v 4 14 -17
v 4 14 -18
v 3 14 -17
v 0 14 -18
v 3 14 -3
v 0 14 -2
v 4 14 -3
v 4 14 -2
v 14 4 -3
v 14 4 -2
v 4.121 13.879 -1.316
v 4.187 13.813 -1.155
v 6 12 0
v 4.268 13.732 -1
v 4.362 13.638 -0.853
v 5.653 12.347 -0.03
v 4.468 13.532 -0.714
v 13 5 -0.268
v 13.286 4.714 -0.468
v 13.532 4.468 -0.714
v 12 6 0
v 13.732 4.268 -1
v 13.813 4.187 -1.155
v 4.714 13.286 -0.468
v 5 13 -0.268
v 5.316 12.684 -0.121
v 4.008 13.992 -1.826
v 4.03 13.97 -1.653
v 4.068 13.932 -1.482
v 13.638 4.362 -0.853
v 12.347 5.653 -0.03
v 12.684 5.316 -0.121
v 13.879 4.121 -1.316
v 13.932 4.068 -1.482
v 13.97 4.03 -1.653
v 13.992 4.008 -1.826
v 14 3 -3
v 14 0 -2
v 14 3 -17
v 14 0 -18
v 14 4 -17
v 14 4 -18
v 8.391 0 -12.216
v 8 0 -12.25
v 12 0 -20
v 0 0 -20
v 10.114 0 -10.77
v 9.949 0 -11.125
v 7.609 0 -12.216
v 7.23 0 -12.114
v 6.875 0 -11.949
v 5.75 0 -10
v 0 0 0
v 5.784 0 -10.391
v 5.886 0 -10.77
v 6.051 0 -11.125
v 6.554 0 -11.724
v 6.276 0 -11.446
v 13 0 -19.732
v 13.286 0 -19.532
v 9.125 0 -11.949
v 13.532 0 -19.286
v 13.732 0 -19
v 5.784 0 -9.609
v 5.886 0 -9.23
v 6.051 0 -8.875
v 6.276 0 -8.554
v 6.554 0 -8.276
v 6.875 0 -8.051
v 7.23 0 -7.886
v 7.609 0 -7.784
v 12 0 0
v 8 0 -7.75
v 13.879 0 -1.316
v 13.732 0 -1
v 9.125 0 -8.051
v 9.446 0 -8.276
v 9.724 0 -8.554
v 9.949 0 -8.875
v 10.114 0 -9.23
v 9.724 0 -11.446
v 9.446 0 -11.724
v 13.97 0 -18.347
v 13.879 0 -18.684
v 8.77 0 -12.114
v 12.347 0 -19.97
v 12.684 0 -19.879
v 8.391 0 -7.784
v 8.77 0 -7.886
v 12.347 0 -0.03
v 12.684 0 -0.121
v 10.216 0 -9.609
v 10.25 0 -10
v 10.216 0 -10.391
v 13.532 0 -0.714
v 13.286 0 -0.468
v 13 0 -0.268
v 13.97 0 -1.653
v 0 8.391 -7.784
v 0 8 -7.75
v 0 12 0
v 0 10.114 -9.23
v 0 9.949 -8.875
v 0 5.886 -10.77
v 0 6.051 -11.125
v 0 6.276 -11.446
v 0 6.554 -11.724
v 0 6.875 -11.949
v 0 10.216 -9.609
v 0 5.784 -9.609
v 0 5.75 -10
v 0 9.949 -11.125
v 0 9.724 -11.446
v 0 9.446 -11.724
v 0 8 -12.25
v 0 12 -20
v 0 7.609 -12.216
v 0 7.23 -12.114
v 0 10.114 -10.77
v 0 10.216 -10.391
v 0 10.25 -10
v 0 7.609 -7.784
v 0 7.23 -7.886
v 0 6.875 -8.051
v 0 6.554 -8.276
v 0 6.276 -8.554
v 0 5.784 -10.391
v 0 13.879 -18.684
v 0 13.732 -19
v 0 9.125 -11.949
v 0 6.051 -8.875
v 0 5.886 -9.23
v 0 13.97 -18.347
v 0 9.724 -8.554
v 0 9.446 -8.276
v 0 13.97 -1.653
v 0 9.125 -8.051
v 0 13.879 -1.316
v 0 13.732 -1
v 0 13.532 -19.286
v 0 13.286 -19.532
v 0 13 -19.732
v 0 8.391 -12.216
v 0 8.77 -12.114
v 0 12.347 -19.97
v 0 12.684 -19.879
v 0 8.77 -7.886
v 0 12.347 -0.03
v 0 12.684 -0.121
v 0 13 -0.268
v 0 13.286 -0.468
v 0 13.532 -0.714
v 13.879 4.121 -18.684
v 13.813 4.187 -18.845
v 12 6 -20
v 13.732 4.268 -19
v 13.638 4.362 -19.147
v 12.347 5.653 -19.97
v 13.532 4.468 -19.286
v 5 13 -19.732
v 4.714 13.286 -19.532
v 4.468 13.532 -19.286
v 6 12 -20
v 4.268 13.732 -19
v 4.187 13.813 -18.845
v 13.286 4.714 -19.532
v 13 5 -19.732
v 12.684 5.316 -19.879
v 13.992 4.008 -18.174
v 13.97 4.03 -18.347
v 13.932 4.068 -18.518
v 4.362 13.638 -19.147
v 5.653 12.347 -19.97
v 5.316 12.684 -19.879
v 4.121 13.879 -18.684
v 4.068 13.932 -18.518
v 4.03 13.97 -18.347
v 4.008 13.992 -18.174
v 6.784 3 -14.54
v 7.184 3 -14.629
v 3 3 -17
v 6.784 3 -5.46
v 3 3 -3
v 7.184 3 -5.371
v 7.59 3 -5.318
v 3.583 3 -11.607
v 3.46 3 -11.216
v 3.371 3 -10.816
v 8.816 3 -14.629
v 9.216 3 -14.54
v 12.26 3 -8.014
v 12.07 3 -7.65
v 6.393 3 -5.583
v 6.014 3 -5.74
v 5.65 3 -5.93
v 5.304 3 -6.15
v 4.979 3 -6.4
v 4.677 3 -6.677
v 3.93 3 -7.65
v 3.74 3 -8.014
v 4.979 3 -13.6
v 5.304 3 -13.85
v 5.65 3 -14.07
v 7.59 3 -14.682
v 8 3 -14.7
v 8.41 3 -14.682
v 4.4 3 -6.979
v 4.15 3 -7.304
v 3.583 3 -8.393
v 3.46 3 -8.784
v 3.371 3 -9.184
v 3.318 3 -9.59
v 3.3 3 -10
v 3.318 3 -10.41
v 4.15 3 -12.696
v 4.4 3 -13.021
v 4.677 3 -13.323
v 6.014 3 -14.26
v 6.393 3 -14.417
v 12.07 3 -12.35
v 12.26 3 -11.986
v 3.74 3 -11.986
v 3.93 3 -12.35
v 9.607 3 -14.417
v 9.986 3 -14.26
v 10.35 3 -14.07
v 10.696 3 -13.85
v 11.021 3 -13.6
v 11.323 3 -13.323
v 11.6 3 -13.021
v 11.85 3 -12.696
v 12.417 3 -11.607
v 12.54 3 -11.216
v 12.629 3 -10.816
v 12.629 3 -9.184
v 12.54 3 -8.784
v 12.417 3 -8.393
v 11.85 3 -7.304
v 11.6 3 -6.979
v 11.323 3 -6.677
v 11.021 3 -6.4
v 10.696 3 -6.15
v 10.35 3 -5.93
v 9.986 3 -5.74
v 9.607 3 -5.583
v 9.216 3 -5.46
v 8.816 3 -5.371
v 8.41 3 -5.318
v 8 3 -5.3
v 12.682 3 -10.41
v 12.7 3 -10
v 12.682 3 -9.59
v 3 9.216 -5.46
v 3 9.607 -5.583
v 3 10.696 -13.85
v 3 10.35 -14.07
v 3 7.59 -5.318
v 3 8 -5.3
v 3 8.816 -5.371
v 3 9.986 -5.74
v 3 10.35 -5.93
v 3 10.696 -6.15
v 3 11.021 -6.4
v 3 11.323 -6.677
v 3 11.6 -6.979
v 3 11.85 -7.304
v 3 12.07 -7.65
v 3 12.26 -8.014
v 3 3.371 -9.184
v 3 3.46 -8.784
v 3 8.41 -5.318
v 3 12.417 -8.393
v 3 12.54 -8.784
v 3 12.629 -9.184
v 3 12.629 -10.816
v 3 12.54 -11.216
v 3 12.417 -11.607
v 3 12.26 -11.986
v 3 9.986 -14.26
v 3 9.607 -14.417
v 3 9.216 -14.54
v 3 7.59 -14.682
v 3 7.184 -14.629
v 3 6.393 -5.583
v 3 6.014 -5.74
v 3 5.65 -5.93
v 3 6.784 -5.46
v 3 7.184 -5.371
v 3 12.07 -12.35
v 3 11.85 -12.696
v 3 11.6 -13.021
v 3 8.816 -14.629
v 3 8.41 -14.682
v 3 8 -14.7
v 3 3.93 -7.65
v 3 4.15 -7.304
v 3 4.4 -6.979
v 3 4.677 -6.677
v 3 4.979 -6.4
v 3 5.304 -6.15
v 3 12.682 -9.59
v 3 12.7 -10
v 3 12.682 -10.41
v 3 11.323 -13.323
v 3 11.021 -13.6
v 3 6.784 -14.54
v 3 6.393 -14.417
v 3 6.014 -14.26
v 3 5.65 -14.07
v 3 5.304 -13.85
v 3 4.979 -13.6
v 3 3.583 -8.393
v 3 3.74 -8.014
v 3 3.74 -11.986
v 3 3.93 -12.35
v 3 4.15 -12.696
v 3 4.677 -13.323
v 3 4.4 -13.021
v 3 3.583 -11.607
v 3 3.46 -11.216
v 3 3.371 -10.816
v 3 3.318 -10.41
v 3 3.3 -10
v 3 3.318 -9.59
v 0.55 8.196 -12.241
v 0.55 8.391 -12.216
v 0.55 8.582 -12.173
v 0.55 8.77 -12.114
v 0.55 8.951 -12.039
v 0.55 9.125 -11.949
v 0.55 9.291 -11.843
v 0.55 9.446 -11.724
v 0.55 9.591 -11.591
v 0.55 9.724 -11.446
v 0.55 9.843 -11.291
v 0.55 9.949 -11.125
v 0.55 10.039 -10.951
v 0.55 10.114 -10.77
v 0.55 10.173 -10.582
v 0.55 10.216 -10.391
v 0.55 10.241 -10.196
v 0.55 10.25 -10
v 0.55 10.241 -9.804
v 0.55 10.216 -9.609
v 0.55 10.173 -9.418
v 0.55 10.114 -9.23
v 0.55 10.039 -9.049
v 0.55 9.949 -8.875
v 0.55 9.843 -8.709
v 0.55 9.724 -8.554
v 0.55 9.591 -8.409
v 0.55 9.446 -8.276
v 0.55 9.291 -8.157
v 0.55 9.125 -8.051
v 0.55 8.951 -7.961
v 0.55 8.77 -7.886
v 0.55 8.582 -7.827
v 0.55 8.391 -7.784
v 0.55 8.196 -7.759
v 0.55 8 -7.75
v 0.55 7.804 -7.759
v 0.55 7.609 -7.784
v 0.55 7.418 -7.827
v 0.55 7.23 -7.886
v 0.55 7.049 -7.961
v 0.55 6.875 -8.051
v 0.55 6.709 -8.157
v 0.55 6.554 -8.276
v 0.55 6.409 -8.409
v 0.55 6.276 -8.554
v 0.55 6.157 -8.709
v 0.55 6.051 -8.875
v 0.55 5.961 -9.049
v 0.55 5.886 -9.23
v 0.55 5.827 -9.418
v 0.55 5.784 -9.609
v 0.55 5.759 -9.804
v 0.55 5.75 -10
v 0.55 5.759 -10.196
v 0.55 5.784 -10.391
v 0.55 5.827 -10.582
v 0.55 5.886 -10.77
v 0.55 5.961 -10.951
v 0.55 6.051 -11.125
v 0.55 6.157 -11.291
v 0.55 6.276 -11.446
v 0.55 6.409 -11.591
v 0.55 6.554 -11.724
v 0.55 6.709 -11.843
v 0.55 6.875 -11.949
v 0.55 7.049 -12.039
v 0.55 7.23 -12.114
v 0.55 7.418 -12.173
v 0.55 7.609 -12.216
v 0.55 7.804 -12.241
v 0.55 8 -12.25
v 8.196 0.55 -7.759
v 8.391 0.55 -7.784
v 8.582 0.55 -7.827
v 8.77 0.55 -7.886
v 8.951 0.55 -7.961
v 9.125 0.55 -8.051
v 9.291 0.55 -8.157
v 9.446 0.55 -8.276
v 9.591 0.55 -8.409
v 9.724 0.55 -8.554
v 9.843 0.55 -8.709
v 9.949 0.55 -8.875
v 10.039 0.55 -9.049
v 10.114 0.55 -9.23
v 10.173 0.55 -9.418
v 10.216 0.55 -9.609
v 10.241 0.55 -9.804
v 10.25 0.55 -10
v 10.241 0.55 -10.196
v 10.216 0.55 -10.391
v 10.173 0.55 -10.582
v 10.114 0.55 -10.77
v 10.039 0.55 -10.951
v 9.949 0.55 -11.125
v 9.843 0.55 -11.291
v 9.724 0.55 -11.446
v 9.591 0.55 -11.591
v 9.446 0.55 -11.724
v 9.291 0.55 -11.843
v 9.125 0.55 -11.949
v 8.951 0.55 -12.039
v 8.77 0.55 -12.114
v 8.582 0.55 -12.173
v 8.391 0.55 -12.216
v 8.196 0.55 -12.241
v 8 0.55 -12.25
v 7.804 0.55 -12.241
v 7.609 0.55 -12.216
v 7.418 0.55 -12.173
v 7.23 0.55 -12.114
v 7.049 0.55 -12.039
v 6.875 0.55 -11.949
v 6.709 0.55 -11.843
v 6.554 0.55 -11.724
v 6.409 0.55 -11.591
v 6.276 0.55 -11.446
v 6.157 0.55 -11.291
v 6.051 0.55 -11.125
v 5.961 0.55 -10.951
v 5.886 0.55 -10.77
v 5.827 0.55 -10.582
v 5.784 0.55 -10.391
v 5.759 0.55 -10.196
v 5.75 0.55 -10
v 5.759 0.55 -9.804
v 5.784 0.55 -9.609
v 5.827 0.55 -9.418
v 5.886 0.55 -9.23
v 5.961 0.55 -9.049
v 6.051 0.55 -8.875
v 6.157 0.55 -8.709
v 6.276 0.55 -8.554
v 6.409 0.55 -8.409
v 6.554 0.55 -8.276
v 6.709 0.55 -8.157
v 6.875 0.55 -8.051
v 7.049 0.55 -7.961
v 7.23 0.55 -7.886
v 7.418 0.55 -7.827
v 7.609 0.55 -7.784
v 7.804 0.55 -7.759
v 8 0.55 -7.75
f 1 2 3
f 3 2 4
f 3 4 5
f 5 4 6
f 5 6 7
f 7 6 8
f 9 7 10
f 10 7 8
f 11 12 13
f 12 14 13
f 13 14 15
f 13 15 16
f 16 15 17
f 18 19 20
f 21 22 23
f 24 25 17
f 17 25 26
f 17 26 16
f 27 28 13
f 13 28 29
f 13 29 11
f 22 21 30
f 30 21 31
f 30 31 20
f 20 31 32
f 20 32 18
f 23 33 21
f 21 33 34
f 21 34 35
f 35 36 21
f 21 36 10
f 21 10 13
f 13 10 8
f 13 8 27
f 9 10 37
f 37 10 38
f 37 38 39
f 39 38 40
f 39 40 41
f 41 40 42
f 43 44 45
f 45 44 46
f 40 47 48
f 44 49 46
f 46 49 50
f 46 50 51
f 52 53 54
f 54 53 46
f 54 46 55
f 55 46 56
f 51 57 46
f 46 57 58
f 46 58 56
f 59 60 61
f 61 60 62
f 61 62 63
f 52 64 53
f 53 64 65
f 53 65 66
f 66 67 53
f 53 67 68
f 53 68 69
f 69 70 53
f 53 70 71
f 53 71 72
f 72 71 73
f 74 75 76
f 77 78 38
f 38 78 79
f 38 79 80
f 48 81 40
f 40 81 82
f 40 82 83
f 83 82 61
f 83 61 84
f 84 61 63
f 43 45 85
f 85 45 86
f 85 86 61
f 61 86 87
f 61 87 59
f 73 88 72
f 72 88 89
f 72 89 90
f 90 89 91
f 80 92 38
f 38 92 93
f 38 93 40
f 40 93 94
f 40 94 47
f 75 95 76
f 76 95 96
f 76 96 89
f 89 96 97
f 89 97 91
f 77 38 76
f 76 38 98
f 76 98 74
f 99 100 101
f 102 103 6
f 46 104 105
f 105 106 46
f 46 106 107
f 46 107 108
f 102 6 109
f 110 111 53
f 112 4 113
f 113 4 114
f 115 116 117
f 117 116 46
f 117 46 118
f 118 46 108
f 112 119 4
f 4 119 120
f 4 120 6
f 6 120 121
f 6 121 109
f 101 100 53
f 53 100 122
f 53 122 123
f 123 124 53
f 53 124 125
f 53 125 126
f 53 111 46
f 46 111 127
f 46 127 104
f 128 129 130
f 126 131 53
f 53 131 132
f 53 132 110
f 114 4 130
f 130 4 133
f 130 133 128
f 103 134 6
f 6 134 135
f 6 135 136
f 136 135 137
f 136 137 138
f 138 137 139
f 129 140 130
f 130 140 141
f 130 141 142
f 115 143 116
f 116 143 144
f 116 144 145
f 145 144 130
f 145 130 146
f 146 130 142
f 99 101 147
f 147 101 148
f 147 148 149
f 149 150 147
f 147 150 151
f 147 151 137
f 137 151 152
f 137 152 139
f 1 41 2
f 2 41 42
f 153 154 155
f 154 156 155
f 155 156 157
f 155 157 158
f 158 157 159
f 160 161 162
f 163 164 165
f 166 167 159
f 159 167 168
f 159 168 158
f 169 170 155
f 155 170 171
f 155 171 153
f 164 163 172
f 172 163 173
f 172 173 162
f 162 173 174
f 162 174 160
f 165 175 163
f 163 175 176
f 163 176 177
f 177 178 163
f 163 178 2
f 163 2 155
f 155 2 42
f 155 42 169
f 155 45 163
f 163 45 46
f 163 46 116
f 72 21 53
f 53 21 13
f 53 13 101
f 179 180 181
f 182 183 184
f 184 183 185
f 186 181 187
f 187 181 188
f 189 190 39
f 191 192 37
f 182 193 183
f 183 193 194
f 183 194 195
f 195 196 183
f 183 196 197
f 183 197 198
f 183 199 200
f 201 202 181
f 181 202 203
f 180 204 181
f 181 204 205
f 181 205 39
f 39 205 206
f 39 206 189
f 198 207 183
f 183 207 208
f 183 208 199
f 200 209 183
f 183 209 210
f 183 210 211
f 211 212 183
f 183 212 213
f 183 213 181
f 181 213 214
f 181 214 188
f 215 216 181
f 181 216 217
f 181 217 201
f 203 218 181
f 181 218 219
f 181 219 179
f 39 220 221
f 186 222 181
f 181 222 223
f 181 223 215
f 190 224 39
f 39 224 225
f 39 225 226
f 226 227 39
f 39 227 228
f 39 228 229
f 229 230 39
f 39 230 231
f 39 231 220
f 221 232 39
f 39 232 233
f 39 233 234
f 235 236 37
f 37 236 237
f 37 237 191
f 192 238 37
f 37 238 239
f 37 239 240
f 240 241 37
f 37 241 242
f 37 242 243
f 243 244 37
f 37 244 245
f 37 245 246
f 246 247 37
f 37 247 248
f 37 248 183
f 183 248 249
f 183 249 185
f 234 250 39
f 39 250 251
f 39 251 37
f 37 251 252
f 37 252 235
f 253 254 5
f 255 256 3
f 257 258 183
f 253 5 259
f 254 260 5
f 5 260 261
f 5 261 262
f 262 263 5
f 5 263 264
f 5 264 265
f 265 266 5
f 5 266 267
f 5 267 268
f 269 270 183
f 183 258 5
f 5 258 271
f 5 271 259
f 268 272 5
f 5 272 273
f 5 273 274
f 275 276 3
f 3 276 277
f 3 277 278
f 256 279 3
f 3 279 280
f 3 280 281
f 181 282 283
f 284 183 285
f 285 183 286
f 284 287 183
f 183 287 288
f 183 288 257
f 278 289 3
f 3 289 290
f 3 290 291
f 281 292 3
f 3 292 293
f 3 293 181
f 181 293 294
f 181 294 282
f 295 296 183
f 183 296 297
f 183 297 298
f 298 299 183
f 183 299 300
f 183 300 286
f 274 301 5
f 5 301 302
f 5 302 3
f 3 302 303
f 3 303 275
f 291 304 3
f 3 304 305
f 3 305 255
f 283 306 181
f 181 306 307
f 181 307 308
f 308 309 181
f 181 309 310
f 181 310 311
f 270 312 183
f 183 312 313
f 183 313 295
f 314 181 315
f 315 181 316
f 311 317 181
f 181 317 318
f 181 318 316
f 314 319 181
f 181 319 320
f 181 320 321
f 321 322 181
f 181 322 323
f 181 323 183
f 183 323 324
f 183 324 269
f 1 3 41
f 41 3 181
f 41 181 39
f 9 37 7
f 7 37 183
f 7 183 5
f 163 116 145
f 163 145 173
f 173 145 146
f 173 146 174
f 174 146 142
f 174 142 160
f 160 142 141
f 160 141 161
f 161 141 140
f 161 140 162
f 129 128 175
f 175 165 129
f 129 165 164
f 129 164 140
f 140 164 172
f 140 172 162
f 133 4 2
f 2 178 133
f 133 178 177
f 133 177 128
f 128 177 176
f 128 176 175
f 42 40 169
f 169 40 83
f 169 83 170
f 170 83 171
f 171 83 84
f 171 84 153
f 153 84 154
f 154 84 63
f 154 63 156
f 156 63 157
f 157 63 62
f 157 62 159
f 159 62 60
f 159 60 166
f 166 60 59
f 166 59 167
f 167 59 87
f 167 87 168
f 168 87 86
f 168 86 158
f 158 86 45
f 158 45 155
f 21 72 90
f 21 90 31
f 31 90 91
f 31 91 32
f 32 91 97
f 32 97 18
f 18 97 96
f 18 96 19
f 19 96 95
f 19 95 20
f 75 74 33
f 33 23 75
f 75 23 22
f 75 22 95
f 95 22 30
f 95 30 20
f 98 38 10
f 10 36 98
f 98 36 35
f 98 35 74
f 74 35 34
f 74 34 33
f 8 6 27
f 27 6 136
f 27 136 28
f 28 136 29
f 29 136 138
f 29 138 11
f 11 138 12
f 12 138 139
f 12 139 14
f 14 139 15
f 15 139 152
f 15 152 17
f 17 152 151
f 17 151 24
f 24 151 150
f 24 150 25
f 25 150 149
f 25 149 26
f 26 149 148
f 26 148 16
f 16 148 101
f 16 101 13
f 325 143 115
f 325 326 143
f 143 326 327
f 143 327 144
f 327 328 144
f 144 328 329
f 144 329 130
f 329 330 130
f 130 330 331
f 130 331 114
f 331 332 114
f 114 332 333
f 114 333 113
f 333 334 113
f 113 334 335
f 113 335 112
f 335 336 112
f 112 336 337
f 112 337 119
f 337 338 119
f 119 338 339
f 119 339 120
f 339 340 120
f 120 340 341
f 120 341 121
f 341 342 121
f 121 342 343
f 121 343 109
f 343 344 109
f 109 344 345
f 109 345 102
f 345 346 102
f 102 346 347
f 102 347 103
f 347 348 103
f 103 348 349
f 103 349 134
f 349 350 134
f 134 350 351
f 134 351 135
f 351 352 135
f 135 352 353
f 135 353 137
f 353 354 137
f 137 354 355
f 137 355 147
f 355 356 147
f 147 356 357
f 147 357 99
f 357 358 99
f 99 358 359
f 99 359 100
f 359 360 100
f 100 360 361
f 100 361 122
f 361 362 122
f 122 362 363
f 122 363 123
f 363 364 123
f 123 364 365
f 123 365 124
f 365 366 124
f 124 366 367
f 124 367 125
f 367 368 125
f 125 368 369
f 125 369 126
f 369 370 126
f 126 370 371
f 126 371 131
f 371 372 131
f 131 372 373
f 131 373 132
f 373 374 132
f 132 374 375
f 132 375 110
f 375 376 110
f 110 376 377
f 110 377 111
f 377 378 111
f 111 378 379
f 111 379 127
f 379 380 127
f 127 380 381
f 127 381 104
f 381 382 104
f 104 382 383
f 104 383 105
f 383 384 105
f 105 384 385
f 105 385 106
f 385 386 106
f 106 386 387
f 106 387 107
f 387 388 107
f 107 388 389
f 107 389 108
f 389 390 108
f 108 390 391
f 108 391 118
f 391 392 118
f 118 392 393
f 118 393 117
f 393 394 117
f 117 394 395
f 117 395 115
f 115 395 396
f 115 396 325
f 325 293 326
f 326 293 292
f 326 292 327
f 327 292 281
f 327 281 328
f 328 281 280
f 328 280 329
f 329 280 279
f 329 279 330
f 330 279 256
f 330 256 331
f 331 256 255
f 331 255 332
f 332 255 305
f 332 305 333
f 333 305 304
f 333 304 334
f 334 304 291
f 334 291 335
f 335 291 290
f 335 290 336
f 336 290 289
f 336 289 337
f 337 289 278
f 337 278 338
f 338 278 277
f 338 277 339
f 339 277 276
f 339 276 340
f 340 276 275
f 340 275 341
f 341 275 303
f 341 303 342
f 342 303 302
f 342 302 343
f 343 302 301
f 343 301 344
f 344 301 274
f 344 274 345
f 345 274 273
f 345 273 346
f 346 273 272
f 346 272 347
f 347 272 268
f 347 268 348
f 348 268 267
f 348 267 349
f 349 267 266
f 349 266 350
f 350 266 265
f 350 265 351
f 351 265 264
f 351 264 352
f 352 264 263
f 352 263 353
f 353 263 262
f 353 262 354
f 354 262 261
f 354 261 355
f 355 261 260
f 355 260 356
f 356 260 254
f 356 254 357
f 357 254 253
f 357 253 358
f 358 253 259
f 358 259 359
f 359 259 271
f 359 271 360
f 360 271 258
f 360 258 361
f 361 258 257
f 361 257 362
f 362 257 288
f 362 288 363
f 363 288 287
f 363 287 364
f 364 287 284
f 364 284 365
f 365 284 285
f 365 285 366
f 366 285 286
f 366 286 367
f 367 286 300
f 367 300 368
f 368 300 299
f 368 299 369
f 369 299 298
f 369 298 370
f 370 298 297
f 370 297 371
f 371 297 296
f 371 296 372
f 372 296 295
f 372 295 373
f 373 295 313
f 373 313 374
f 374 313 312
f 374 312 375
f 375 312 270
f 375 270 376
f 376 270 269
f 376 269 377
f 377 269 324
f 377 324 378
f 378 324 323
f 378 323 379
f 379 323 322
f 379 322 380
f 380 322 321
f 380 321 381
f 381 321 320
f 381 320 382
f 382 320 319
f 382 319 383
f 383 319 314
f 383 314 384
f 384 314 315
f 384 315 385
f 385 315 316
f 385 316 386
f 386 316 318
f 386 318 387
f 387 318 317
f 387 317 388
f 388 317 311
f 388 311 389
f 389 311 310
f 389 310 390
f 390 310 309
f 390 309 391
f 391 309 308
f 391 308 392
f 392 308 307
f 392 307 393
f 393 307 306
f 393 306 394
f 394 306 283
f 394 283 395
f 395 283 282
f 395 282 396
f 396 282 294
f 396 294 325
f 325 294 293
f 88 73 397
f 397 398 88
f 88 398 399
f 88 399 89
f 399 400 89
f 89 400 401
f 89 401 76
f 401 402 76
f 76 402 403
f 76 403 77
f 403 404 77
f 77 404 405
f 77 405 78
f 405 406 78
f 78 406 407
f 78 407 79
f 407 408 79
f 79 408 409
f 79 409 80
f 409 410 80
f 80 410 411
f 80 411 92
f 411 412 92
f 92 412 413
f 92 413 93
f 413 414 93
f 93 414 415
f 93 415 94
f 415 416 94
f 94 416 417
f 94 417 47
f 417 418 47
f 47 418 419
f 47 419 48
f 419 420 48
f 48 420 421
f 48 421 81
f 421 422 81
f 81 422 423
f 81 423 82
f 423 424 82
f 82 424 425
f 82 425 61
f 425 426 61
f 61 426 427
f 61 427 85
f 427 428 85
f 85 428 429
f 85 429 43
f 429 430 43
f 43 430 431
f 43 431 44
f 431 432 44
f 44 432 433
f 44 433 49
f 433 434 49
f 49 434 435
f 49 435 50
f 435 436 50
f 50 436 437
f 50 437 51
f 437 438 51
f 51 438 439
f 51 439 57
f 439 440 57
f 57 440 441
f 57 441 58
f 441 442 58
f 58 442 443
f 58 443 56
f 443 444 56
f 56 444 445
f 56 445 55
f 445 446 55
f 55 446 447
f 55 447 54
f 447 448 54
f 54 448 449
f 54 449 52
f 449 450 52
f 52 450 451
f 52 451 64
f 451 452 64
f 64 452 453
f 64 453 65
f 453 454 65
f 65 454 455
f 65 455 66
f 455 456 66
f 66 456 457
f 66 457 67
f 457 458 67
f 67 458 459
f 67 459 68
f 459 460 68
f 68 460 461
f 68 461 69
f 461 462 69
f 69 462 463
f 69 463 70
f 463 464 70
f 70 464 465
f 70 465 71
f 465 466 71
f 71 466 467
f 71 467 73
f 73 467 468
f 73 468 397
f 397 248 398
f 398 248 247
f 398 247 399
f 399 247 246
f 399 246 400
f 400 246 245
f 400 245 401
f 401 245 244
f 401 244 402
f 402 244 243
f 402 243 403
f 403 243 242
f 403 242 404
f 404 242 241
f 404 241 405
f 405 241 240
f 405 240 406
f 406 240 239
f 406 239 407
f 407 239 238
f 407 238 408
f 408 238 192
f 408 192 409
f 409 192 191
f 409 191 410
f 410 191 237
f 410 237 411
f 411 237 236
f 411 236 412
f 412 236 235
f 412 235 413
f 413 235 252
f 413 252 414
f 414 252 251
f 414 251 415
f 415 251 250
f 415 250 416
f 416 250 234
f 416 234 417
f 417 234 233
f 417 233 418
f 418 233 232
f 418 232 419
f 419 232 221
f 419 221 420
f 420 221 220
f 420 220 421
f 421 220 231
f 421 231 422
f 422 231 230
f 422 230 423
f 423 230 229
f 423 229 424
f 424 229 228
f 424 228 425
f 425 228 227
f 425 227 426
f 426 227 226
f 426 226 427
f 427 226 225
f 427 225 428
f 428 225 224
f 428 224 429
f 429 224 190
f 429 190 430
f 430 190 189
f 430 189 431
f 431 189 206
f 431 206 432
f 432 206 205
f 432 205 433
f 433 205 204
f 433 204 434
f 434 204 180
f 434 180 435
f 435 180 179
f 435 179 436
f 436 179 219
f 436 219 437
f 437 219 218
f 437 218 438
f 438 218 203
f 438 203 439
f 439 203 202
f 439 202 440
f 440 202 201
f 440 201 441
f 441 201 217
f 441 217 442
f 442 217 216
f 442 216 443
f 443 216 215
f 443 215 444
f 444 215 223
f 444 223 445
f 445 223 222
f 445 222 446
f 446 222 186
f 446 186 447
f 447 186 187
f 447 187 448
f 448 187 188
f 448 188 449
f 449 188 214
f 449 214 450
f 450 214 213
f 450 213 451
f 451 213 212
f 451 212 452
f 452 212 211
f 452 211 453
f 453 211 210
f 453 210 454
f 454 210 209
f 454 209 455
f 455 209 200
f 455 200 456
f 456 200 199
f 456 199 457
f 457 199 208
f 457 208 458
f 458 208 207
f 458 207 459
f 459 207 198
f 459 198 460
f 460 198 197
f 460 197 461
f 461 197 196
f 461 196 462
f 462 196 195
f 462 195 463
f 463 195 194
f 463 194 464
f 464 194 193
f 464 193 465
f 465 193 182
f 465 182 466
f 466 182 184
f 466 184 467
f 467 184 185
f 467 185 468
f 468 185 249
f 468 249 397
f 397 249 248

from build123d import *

# Parameters (mm, degrees)
BOSS_EXTRUDE2_DEPTH = 20
SHELL1_START        = 3
SHELL1_OUTLINE_W    = 11
SHELL1_OUTLINE_H    = 14
SHELL1_DEPTH        = 11
FILLET3_R           = 2


# Read off the part's stored shape, not the designer's step: Shell1
with BuildPart() as part:
    # Sketch1 → Boss-Extrude2 (new body)
    with BuildSketch(Plane.XY):
        Polygon((0, 0), (0, 14), (4, 14), (14, 4), (14, 0), align=None)
    extrude(amount=-BOSS_EXTRUDE2_DEPTH)

    # Shell1 outline → Shell1 (cut)
    with BuildSketch(Plane(origin=(0, 0, 0), x_dir=(1, 0, 0), z_dir=(0, 1, 0)).offset(SHELL1_START)):
        with Locations((8.5, 10)):
            Rectangle(SHELL1_OUTLINE_W, SHELL1_OUTLINE_H)
    extrude(amount=SHELL1_DEPTH, mode=Mode.SUBTRACT)

    # Fillet3
    fillet3_edges = [part.edges().sort_by_distance(p)[0] for p in [
        (2, 14, -20),
        (2, 14, 0),
        (14, 2, 0),
        (14, 2, -20),
    ]]
    fillet(fillet3_edges, radius=FILLET3_R)

    # Sketch6 → CSK for M4 Flat Head Machine Screw3 (revolve, cut)
    with BuildSketch(Plane(origin=(3, 8, -10), x_dir=(0, 0, -1), z_dir=(0, 1, 0))):
        Polygon((0, 0), (0, 3), (2.25, 3), (2.25, 2.45), (4.7, 0), align=None)
    revolve(axis=Axis((9.35, 8, -10), (-1, 0, 0)), mode=Mode.SUBTRACT)

    # Sketch9 → CSK for M4 Flat Head Machine Screw2 (revolve, cut)
    with BuildSketch(Plane(origin=(8, 3, -10), x_dir=(0, 0, 1), z_dir=(1, 0, 0))):
        Polygon((0, 0), (0, 3), (2.25, 3), (2.25, 2.45), (4.7, 0), align=None)
    revolve(axis=Axis((8, 9.35, -10), (0, -1, 0)), mode=Mode.SUBTRACT)


solid = part.part
